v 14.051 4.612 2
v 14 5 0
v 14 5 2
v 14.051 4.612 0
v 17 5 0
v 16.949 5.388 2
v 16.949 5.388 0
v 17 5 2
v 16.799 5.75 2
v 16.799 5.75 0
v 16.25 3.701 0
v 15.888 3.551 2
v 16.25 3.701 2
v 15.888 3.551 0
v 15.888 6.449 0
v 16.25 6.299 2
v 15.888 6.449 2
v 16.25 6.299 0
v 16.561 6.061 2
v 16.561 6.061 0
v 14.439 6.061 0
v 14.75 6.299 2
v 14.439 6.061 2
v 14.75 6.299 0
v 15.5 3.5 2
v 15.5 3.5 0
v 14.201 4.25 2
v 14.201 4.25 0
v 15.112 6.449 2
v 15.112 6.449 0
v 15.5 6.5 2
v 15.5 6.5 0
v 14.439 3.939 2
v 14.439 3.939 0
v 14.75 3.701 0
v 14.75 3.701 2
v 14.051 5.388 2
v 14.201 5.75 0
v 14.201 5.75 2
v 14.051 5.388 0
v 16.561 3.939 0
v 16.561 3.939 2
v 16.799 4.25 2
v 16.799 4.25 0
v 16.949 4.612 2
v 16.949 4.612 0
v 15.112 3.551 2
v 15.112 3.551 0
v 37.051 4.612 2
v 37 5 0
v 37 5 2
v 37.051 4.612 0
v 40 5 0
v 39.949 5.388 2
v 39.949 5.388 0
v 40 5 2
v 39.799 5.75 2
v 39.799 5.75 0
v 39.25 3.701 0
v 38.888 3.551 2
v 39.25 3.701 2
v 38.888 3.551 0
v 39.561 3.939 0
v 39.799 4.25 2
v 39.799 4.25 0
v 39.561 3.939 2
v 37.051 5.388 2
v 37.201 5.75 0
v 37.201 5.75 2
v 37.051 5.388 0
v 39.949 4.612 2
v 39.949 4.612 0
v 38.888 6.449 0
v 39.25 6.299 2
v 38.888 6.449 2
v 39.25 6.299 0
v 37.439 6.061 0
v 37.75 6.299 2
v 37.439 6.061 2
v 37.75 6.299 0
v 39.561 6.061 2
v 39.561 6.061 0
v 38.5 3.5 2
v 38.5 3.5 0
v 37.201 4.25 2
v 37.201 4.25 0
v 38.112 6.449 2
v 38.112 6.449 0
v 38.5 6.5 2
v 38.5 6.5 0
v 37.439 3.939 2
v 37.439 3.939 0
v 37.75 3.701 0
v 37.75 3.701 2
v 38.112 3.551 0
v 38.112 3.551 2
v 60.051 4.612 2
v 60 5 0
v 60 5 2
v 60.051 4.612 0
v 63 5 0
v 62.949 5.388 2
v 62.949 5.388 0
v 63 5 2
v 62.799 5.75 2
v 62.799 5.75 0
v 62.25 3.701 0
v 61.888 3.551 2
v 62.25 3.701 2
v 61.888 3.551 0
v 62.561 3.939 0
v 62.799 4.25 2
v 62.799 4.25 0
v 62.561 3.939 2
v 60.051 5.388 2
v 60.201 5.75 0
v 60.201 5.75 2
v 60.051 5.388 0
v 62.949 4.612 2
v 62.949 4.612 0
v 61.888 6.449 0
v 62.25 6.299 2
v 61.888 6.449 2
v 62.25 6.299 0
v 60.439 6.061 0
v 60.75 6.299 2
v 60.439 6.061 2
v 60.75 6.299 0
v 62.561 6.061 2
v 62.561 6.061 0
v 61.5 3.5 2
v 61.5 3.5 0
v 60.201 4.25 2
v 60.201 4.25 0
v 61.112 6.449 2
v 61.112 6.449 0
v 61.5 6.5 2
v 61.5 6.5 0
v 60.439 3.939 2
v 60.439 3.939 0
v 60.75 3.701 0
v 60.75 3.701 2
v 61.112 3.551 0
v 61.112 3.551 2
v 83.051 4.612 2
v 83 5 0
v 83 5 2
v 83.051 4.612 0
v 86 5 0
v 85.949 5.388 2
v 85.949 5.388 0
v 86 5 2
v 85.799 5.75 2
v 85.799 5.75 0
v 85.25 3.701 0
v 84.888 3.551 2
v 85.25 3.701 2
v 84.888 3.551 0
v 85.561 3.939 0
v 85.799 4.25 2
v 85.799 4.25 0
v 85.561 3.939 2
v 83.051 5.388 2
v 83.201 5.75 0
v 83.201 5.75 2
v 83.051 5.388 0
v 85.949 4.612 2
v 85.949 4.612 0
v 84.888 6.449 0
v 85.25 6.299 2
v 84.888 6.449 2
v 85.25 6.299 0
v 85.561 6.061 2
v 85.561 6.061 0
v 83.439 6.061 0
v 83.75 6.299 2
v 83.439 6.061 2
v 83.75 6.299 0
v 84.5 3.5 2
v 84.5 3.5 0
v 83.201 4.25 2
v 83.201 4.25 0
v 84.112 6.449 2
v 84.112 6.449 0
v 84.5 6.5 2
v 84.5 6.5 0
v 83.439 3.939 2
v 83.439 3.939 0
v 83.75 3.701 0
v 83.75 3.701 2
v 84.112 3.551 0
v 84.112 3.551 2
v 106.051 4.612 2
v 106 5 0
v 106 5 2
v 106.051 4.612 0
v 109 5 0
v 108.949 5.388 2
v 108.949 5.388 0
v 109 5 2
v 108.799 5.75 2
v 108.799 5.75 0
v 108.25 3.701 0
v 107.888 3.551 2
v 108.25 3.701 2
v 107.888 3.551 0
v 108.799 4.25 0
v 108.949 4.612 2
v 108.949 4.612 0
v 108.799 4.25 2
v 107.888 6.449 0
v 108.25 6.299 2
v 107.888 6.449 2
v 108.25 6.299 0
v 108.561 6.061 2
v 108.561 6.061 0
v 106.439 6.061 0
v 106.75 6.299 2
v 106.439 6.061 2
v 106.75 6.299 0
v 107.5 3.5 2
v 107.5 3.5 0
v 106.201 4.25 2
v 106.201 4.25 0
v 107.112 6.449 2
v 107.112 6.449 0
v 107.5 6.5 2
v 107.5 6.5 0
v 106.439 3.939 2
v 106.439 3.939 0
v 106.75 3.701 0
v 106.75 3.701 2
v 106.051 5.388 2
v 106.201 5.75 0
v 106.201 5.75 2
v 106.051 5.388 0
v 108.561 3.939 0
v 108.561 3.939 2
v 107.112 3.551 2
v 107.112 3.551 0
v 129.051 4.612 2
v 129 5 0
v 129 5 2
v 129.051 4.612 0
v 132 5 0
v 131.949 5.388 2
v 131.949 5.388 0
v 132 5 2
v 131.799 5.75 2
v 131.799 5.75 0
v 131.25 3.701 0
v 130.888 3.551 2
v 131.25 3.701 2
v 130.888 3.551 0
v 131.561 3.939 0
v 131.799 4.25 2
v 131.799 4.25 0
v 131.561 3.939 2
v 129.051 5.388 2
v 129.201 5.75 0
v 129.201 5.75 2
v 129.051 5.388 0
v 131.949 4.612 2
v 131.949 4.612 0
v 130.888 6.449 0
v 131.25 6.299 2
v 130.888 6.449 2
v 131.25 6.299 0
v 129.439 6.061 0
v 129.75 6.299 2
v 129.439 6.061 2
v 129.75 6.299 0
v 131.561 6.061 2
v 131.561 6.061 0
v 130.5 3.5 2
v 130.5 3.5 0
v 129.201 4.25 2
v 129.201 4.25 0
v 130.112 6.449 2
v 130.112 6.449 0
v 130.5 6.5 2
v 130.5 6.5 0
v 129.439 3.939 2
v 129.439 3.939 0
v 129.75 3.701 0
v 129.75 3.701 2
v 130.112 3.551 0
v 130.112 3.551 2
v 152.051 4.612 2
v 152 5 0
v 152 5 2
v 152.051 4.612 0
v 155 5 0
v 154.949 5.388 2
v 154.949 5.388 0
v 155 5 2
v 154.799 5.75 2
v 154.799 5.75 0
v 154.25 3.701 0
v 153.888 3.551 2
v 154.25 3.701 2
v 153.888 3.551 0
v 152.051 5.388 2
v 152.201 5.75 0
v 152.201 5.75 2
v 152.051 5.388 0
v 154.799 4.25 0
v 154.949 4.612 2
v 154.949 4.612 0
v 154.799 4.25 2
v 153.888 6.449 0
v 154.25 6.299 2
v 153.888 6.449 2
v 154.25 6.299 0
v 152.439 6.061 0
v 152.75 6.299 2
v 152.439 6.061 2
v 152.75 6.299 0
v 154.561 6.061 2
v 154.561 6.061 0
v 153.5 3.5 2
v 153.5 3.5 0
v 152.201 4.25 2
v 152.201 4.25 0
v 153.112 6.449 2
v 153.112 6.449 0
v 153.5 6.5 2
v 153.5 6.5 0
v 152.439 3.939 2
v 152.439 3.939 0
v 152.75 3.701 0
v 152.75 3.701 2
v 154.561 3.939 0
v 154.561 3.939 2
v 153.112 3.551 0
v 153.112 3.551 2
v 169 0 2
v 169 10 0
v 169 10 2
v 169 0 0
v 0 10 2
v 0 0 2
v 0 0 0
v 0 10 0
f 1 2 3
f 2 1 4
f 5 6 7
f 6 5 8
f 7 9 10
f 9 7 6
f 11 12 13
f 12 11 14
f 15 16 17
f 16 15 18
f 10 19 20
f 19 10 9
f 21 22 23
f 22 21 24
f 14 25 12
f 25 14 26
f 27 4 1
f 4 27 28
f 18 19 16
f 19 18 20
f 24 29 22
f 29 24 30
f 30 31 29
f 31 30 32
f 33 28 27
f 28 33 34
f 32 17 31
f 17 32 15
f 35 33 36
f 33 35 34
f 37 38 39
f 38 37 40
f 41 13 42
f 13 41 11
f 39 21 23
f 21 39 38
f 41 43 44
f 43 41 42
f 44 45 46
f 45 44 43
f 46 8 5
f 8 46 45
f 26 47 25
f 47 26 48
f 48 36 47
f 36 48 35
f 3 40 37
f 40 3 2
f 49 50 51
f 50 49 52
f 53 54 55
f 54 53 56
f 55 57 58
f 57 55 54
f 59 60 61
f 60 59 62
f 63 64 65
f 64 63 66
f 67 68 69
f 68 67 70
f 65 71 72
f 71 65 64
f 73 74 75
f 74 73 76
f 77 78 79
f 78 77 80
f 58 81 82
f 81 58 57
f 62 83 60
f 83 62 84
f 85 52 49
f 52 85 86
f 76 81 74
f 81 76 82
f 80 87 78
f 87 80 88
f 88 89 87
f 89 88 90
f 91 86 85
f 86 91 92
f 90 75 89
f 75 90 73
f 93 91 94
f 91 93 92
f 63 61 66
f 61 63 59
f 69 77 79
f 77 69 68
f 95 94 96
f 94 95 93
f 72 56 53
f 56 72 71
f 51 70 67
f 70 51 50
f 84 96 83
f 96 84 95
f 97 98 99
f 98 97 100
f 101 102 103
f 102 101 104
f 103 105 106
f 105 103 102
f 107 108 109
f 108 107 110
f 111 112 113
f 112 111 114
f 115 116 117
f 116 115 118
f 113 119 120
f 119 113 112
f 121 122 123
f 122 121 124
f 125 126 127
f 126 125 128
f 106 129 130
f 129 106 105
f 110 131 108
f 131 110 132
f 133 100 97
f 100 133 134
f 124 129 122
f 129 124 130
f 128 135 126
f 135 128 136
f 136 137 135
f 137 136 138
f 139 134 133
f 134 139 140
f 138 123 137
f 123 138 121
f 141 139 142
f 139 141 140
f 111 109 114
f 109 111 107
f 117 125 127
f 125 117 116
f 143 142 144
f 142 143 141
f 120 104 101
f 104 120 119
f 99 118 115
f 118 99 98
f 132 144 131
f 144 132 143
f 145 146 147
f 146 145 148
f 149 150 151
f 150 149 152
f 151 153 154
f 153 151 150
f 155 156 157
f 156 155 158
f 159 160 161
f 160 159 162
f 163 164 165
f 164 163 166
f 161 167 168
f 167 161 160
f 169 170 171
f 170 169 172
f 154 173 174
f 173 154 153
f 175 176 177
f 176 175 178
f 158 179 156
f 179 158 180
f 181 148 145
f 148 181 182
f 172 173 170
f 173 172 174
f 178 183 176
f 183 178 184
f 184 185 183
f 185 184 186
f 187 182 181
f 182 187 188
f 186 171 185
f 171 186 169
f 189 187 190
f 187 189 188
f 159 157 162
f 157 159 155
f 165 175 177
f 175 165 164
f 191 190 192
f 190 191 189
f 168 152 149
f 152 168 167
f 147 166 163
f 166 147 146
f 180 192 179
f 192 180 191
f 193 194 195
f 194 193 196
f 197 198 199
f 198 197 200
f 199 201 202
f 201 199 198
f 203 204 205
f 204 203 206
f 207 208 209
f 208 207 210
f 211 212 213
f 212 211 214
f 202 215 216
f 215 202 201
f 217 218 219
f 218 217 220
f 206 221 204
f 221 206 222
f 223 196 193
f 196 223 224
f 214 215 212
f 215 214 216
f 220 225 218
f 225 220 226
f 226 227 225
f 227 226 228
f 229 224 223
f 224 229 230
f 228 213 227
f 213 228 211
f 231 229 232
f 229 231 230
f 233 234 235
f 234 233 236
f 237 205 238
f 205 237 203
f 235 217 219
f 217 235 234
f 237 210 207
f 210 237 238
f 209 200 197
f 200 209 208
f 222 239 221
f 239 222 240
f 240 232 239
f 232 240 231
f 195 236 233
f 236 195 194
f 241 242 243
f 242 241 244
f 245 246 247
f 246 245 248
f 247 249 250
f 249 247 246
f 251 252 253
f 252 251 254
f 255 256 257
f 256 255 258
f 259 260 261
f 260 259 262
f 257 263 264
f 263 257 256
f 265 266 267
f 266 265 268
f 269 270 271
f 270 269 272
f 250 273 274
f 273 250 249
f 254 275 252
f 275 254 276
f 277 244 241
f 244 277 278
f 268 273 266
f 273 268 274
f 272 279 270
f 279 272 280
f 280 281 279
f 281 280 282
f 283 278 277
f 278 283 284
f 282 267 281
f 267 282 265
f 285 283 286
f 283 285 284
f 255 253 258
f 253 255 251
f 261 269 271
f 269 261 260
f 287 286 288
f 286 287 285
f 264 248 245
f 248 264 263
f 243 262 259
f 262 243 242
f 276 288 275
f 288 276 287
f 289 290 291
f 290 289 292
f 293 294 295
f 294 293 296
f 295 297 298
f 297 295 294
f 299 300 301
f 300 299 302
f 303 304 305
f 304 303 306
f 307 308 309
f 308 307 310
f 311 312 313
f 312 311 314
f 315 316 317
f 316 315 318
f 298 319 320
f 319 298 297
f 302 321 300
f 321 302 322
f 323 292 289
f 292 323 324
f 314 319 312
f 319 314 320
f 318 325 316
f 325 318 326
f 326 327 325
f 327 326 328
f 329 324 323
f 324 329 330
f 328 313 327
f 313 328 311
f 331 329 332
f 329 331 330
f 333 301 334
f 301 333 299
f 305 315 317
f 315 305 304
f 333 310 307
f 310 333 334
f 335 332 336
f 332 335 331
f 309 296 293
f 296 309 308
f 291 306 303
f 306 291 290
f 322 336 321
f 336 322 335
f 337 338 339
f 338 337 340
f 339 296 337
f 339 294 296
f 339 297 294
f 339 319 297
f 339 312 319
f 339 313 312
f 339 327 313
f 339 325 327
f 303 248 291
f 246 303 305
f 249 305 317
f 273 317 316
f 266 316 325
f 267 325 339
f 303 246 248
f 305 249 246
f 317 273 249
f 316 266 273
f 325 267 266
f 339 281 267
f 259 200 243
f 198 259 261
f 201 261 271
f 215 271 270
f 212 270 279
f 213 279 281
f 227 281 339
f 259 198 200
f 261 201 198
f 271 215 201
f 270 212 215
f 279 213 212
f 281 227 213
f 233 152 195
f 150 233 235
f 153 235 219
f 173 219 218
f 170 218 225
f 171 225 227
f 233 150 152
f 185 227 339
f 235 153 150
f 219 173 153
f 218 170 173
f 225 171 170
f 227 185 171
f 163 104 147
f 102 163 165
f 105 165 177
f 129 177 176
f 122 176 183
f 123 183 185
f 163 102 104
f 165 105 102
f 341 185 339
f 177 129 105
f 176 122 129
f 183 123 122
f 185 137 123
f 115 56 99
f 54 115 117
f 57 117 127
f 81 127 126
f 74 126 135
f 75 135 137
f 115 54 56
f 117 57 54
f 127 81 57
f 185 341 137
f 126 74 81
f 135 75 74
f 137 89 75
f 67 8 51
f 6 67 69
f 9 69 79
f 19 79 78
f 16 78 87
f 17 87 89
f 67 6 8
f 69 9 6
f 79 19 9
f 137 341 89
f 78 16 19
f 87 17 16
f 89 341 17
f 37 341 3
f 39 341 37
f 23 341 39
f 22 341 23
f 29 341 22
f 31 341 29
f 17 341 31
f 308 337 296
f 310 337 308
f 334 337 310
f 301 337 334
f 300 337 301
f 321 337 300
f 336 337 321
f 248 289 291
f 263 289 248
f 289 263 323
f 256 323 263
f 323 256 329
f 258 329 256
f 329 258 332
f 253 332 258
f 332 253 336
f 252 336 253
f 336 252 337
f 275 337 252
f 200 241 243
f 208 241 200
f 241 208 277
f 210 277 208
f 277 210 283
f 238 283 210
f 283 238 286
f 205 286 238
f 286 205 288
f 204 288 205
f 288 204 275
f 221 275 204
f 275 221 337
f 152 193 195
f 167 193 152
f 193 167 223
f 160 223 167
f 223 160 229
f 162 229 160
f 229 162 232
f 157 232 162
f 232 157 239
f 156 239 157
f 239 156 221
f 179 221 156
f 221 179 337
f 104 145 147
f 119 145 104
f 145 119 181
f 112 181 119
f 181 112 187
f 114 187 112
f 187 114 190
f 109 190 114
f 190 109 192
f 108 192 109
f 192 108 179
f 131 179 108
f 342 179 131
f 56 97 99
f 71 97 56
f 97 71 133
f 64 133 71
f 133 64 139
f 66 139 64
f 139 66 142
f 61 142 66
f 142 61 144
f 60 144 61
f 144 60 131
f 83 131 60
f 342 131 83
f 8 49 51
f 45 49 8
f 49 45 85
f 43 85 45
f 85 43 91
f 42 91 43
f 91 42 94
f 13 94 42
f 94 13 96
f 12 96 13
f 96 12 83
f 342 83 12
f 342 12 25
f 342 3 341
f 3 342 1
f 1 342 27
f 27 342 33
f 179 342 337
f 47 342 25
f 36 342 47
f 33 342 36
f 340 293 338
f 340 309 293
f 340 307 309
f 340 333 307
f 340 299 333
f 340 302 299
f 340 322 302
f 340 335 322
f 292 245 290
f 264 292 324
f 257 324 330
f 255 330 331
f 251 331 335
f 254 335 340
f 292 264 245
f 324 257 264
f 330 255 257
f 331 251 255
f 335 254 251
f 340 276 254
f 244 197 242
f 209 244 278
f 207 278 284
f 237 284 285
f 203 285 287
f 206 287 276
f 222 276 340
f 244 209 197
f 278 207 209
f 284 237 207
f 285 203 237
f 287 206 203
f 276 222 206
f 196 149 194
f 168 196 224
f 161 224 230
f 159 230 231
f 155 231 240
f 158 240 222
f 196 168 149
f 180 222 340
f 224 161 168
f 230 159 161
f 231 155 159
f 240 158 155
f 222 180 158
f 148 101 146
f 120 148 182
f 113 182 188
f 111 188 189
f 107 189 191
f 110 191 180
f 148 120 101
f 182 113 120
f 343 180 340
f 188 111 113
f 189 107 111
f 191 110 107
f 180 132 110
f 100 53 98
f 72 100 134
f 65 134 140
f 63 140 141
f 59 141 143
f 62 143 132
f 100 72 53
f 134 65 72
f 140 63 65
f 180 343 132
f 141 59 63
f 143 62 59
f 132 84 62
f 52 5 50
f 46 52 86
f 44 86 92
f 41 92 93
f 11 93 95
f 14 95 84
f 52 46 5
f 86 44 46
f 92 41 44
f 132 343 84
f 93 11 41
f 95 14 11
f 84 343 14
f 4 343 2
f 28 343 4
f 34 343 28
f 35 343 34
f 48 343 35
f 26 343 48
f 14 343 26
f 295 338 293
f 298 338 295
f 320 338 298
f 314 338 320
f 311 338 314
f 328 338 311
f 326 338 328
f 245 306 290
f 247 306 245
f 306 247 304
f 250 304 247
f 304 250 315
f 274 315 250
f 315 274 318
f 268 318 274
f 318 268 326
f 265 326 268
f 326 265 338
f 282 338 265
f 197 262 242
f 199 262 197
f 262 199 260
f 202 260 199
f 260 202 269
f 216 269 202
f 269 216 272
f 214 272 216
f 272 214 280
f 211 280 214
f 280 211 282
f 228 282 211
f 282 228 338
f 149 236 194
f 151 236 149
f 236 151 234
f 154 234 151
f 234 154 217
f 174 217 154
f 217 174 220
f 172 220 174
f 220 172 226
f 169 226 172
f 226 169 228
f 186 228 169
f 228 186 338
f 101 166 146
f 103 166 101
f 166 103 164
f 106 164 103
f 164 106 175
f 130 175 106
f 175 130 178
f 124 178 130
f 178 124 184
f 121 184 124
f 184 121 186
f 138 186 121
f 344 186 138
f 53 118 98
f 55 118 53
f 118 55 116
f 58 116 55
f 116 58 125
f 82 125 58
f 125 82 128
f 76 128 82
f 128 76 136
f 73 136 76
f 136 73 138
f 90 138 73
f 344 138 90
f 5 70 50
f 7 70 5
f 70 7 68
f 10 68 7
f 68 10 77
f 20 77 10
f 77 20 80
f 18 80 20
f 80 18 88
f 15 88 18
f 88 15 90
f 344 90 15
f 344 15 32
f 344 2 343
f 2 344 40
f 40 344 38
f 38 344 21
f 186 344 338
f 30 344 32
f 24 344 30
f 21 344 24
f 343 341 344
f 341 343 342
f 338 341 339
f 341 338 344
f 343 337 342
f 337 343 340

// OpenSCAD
mini_diff = 0.1;

hdd_height = 15;
hdd_count = 7;

space_around = 8;

hole_diameter = 3;
item_thickness = 2;
item_width = 10;

strip_length = hdd_height * hdd_count + space_around * (hdd_count + 1);

echo(strip_length);

difference() {
    cube([strip_length, item_width, item_thickness], center = false);

    for (i = [0 : hdd_count - 1]) {
        translate([
            space_around + hdd_height / 2 + i * (hdd_height + space_around),
            item_width / 2,
           -mini_diff
        ])
        cylinder(d = hole_diameter,
                 h = item_thickness + 2 * mini_diff,
                 $fn = 24);
    }
}
